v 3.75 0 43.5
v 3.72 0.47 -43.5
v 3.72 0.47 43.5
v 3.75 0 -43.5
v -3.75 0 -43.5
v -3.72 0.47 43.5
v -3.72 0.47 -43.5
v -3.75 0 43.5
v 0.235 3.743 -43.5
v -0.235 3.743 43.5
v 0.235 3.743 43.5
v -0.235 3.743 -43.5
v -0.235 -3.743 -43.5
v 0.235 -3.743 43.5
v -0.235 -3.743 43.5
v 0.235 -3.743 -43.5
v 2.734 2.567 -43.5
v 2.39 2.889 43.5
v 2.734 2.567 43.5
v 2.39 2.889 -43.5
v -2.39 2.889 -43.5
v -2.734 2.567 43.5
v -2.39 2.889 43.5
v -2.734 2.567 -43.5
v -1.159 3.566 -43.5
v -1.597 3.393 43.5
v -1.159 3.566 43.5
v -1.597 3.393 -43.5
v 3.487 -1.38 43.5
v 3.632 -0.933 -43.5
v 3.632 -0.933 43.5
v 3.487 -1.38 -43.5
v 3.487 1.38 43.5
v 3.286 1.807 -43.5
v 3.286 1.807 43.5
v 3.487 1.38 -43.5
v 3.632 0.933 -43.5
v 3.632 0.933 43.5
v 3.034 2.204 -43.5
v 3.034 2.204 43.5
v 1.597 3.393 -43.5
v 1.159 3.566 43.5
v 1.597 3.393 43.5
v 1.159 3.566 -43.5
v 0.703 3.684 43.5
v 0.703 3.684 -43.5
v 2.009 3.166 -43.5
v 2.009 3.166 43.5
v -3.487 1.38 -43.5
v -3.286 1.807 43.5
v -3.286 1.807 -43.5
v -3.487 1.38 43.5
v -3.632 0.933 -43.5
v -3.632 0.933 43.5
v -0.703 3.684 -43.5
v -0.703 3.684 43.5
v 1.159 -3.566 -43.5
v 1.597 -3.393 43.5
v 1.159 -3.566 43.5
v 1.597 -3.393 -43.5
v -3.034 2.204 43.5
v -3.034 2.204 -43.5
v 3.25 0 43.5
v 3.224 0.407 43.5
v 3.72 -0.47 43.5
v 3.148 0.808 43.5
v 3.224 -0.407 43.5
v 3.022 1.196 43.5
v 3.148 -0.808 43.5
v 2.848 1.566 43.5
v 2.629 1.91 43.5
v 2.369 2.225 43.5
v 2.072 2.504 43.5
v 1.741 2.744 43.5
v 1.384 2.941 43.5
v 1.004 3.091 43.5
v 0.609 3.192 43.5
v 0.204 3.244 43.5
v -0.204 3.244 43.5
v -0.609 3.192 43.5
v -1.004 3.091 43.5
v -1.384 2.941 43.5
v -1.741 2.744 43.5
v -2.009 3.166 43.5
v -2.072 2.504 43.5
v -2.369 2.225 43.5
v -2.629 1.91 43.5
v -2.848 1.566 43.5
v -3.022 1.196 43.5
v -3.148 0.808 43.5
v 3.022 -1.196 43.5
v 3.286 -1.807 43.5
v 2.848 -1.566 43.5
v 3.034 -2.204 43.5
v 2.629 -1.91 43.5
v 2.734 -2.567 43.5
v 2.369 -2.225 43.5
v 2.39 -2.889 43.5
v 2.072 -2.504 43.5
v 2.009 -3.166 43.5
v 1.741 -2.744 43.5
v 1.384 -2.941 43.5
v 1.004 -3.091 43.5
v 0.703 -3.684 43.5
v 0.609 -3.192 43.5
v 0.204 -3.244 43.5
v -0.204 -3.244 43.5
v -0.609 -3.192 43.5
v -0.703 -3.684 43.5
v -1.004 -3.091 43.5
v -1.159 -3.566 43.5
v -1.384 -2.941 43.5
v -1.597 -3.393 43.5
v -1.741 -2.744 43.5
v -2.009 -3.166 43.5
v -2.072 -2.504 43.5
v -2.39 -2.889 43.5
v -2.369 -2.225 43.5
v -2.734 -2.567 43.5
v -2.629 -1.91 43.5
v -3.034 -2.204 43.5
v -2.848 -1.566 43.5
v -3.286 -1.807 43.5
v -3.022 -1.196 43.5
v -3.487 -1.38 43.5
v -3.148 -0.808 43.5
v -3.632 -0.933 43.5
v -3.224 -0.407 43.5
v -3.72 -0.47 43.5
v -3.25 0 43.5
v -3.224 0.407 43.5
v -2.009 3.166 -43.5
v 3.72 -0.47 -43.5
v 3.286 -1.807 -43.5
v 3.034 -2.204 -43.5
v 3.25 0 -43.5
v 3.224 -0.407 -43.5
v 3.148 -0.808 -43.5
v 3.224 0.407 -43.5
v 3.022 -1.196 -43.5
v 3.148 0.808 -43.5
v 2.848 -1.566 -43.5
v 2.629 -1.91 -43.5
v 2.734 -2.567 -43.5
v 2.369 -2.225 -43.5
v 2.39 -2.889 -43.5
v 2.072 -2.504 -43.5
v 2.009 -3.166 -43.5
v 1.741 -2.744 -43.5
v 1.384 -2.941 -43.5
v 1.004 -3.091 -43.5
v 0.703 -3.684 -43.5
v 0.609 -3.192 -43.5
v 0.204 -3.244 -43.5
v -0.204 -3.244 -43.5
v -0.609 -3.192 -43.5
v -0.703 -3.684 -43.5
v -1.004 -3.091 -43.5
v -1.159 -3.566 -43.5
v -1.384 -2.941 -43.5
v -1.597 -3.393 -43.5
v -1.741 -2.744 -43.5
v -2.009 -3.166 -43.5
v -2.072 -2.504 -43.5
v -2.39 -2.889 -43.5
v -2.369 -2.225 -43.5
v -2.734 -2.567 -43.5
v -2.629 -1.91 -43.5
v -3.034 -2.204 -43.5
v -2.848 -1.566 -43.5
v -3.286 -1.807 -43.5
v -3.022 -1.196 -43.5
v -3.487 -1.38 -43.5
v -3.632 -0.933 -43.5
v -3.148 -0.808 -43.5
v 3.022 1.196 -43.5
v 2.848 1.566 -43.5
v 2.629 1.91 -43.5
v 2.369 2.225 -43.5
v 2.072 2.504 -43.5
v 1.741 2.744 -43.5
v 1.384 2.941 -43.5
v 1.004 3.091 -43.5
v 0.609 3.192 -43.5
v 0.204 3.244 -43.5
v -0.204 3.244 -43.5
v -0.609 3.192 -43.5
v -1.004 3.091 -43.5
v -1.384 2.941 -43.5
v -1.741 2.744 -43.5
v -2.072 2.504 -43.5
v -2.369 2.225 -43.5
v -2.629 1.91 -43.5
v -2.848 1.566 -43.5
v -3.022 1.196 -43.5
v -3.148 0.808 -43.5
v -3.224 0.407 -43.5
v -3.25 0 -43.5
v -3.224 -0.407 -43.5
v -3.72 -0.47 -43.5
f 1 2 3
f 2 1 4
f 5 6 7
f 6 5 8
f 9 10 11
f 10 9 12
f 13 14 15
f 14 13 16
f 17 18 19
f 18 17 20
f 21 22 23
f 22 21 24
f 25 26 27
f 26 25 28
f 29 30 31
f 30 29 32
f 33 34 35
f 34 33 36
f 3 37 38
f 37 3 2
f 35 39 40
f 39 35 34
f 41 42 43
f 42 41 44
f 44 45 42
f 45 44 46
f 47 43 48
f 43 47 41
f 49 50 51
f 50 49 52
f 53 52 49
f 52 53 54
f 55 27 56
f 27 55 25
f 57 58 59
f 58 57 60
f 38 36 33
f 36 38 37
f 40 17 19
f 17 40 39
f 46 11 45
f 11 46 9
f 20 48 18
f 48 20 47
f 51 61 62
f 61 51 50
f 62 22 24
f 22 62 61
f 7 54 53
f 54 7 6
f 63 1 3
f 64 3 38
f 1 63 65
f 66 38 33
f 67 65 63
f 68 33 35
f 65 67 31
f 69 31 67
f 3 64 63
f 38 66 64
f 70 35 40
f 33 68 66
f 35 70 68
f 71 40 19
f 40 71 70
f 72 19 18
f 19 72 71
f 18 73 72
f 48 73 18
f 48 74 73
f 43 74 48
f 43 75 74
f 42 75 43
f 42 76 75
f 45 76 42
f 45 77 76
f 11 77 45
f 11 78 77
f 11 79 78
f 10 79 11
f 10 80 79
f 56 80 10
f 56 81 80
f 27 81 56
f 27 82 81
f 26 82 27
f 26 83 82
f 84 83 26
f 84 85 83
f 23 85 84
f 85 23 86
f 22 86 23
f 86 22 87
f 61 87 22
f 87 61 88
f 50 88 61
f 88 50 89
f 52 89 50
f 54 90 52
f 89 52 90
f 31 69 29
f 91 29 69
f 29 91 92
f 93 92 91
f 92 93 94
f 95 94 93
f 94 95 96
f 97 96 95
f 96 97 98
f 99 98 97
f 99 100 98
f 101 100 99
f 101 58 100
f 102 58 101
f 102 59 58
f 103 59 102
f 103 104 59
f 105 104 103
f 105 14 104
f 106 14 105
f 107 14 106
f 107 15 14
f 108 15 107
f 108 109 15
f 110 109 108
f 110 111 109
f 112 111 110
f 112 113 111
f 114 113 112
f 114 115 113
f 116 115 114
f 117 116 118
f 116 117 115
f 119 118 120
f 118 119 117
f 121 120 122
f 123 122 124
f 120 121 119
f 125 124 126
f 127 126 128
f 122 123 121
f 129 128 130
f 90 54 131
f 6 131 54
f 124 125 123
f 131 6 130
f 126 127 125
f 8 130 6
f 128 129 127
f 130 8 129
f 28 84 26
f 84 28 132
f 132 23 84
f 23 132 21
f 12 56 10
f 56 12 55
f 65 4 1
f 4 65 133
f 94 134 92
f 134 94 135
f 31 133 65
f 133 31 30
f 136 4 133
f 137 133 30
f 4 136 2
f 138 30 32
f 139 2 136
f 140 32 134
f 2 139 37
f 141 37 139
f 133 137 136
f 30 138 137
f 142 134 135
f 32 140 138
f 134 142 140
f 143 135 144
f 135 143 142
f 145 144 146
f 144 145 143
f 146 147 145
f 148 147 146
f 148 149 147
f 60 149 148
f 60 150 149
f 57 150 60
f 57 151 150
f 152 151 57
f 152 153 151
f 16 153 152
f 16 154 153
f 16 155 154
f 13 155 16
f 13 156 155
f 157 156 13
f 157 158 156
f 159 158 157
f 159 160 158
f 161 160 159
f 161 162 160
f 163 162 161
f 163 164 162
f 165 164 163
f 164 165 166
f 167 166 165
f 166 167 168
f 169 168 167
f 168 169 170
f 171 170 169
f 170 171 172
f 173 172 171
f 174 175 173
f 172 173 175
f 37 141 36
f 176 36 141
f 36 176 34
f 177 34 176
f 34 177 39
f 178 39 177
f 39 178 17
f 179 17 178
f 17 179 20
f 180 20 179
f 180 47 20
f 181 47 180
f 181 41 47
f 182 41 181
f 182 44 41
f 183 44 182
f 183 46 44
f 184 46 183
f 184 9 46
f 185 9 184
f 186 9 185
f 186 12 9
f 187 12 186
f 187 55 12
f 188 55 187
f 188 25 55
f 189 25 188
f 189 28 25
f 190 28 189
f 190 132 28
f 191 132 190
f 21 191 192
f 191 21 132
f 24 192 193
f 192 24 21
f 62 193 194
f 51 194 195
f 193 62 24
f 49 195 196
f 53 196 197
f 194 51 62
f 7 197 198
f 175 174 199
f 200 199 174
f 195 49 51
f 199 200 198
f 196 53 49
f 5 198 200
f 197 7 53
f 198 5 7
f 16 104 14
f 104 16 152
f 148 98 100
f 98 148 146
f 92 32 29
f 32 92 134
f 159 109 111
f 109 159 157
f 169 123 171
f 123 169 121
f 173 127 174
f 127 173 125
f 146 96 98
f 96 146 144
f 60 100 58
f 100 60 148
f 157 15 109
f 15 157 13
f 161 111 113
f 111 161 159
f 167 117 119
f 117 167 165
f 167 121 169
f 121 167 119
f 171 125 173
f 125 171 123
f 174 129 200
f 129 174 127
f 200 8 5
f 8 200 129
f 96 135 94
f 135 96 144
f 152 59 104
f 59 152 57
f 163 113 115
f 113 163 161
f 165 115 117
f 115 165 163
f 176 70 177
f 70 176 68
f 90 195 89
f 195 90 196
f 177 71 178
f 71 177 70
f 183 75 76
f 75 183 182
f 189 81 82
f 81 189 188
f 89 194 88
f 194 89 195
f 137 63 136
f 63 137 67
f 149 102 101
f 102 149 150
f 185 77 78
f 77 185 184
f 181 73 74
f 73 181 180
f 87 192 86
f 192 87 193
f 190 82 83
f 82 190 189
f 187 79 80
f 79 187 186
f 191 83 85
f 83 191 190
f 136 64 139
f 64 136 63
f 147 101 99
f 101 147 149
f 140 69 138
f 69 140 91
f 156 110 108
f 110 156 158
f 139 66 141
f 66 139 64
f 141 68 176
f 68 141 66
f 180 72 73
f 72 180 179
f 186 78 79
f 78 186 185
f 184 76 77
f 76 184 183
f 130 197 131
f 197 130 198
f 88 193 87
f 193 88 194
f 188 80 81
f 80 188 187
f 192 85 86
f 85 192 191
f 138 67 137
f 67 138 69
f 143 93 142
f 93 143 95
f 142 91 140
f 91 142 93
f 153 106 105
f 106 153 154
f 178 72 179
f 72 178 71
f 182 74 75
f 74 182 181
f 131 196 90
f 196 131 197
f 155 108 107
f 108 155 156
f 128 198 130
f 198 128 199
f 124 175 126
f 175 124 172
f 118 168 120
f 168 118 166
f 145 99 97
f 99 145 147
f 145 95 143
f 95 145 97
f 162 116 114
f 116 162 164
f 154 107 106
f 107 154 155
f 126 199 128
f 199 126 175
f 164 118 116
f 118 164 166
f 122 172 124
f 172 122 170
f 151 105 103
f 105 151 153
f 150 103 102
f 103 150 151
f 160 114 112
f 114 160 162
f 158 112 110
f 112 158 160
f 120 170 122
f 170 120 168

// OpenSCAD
$fn = 50;


difference() {
	union() {
		translate(v = [0, 0, -43.5000000000]) {
			cylinder(h = 87, r = 3.7500000000);
		}
	}
	union() {
		translate(v = [0, 0, -100.0000000000]) {
			cylinder(h = 200, r = 3.2500000000);
		}
	}
}
